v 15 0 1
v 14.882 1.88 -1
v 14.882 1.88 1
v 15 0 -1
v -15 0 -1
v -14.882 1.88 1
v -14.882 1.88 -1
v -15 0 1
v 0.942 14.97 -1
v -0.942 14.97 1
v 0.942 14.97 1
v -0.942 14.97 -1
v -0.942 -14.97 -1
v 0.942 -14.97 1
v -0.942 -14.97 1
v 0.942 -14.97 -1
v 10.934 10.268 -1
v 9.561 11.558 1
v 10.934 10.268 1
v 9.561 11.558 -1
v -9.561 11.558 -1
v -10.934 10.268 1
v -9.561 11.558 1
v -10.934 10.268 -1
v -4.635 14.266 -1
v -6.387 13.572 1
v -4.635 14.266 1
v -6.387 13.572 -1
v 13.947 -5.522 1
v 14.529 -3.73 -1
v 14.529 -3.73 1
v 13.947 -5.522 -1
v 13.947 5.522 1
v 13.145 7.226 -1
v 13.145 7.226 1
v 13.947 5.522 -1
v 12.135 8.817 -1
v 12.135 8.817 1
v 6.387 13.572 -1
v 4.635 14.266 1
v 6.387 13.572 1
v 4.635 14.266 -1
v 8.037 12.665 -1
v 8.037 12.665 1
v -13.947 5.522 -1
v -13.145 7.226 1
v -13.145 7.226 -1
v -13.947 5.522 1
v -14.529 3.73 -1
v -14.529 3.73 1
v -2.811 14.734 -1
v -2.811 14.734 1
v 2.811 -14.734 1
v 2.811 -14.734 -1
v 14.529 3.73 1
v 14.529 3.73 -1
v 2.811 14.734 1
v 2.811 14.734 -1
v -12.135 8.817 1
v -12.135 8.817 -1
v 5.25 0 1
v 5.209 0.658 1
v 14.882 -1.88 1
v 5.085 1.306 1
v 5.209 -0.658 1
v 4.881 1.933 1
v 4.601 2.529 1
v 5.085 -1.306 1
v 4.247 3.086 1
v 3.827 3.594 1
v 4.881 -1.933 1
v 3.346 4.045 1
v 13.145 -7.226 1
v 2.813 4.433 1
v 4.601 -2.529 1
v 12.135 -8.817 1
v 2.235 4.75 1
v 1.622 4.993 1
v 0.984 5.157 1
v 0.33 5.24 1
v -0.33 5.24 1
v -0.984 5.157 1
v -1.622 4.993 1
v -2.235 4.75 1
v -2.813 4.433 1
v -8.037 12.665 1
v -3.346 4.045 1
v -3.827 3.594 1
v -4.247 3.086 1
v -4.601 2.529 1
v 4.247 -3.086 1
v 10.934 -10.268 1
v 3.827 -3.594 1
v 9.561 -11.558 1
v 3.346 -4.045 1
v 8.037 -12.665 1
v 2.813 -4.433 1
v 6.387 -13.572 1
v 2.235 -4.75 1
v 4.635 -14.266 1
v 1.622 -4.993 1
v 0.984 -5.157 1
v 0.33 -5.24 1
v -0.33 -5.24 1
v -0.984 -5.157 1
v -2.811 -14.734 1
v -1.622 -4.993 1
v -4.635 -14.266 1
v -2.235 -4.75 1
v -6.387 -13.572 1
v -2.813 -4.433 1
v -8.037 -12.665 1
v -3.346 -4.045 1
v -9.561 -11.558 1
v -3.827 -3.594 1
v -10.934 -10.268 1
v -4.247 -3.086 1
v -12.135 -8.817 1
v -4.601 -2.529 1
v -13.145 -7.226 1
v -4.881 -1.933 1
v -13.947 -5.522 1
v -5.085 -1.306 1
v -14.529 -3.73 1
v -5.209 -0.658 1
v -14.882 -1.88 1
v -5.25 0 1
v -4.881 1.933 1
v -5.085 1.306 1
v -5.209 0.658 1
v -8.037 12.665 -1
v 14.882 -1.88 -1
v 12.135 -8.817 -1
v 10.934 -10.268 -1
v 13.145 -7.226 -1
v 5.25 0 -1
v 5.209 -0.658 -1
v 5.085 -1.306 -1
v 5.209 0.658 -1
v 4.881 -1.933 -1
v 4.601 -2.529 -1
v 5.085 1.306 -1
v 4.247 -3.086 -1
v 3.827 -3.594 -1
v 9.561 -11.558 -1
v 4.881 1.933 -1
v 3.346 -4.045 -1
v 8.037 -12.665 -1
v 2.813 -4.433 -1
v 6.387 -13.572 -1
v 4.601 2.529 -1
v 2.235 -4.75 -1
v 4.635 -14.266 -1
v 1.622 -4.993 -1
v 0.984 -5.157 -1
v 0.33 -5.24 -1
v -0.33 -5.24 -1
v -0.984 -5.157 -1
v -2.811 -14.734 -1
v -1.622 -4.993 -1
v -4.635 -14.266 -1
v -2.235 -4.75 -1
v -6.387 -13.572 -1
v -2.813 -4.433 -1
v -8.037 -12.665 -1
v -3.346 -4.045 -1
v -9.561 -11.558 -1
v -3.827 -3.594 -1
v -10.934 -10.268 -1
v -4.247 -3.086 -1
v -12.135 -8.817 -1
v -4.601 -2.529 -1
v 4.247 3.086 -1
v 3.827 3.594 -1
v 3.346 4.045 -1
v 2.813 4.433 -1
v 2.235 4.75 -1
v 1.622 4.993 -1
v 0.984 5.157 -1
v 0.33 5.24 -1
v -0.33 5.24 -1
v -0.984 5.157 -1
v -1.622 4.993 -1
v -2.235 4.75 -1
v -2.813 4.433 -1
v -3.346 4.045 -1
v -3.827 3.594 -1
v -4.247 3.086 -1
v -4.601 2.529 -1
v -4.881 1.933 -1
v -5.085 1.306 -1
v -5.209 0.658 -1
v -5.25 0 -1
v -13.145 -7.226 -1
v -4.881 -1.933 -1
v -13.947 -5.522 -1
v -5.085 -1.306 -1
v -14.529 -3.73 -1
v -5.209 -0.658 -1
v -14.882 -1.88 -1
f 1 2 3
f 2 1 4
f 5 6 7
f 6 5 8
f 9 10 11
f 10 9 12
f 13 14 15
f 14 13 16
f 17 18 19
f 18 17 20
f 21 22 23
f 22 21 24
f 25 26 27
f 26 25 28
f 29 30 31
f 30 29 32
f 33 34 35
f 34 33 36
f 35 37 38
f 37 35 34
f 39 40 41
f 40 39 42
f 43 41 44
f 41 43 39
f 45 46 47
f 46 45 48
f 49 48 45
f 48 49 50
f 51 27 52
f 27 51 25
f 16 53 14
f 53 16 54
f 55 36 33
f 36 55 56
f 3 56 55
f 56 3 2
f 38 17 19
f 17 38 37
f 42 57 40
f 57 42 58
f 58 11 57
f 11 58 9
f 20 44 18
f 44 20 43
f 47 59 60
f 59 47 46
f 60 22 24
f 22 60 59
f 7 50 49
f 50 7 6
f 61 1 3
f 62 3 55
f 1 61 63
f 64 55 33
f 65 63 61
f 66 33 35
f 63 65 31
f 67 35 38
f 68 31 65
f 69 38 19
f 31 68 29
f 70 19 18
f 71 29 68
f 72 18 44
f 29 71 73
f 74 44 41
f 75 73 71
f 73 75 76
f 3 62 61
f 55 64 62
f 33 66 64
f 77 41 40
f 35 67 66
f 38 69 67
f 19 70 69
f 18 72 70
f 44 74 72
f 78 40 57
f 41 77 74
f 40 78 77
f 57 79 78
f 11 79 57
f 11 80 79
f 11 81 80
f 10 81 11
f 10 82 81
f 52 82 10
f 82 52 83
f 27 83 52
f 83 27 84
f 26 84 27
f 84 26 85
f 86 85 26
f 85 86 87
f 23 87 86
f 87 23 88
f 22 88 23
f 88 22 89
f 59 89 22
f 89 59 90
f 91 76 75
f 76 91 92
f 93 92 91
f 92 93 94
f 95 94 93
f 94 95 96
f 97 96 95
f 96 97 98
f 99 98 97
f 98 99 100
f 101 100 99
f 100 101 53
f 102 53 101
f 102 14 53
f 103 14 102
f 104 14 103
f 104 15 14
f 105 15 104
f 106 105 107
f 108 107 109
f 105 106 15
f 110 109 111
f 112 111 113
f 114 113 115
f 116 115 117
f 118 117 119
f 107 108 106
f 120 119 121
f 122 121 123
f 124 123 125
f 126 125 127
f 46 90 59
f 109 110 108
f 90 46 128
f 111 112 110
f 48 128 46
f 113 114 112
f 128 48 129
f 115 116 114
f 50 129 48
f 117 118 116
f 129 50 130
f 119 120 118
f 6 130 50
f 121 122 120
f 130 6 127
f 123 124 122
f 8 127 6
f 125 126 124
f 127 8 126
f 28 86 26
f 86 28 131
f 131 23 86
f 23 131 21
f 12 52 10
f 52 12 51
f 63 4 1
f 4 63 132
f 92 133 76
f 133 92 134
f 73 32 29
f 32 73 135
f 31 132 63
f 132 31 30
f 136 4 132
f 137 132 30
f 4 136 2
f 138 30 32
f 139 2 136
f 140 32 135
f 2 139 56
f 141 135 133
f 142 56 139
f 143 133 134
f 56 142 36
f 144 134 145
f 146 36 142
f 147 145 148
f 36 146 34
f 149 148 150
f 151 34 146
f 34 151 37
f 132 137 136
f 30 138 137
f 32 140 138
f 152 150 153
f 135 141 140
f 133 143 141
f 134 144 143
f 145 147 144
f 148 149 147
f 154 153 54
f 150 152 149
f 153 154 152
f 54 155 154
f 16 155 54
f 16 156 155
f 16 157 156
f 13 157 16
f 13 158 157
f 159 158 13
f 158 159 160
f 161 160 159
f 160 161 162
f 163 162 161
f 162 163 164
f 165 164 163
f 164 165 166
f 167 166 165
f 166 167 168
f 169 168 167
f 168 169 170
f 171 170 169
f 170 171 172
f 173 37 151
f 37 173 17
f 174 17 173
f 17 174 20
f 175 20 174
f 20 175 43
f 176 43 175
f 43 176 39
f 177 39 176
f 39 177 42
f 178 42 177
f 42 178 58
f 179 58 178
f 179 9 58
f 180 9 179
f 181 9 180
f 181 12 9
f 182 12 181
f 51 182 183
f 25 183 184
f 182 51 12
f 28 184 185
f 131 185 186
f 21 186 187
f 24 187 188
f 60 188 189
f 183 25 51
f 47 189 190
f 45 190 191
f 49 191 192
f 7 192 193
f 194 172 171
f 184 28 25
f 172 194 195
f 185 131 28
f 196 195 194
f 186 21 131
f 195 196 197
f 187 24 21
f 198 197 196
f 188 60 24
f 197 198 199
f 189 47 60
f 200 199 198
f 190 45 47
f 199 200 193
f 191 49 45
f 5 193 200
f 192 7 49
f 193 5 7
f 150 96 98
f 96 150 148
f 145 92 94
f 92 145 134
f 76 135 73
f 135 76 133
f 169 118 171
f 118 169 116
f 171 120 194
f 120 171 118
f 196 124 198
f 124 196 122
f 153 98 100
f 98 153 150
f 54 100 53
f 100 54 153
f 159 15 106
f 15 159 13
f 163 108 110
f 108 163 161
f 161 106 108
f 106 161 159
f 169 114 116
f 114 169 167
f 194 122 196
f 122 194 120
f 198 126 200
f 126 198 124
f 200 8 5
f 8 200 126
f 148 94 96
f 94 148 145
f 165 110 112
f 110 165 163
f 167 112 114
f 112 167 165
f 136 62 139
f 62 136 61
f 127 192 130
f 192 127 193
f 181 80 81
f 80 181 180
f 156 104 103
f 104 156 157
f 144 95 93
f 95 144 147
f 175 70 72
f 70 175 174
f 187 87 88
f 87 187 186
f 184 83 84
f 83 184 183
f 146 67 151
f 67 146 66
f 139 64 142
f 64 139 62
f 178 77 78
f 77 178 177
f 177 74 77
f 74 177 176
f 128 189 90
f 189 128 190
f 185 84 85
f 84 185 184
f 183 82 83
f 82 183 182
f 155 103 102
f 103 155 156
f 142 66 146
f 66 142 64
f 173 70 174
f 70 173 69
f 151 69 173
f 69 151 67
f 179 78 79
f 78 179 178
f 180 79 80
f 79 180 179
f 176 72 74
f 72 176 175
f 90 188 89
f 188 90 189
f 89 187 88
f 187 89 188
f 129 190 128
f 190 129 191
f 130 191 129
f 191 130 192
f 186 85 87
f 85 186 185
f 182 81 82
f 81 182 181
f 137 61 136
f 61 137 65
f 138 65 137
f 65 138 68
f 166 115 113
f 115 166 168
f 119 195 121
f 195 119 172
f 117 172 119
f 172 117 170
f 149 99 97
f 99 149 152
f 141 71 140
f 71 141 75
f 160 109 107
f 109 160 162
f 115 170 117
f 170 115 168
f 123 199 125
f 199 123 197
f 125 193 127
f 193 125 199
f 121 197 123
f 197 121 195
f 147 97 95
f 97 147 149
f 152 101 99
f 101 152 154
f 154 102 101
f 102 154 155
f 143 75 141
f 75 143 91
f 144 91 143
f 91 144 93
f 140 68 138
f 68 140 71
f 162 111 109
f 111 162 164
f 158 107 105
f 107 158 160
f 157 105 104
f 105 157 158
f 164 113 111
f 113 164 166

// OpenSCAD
$fn = 50;


difference() {
	union() {
		translate(v = [0, 0, -1.0000000000]) {
			cylinder(h = 2, r = 15.0000000000);
		}
	}
	union() {
		translate(v = [0, 0, -100.0000000000]) {
			cylinder(h = 200, r = 5.2500000000);
		}
	}
}
